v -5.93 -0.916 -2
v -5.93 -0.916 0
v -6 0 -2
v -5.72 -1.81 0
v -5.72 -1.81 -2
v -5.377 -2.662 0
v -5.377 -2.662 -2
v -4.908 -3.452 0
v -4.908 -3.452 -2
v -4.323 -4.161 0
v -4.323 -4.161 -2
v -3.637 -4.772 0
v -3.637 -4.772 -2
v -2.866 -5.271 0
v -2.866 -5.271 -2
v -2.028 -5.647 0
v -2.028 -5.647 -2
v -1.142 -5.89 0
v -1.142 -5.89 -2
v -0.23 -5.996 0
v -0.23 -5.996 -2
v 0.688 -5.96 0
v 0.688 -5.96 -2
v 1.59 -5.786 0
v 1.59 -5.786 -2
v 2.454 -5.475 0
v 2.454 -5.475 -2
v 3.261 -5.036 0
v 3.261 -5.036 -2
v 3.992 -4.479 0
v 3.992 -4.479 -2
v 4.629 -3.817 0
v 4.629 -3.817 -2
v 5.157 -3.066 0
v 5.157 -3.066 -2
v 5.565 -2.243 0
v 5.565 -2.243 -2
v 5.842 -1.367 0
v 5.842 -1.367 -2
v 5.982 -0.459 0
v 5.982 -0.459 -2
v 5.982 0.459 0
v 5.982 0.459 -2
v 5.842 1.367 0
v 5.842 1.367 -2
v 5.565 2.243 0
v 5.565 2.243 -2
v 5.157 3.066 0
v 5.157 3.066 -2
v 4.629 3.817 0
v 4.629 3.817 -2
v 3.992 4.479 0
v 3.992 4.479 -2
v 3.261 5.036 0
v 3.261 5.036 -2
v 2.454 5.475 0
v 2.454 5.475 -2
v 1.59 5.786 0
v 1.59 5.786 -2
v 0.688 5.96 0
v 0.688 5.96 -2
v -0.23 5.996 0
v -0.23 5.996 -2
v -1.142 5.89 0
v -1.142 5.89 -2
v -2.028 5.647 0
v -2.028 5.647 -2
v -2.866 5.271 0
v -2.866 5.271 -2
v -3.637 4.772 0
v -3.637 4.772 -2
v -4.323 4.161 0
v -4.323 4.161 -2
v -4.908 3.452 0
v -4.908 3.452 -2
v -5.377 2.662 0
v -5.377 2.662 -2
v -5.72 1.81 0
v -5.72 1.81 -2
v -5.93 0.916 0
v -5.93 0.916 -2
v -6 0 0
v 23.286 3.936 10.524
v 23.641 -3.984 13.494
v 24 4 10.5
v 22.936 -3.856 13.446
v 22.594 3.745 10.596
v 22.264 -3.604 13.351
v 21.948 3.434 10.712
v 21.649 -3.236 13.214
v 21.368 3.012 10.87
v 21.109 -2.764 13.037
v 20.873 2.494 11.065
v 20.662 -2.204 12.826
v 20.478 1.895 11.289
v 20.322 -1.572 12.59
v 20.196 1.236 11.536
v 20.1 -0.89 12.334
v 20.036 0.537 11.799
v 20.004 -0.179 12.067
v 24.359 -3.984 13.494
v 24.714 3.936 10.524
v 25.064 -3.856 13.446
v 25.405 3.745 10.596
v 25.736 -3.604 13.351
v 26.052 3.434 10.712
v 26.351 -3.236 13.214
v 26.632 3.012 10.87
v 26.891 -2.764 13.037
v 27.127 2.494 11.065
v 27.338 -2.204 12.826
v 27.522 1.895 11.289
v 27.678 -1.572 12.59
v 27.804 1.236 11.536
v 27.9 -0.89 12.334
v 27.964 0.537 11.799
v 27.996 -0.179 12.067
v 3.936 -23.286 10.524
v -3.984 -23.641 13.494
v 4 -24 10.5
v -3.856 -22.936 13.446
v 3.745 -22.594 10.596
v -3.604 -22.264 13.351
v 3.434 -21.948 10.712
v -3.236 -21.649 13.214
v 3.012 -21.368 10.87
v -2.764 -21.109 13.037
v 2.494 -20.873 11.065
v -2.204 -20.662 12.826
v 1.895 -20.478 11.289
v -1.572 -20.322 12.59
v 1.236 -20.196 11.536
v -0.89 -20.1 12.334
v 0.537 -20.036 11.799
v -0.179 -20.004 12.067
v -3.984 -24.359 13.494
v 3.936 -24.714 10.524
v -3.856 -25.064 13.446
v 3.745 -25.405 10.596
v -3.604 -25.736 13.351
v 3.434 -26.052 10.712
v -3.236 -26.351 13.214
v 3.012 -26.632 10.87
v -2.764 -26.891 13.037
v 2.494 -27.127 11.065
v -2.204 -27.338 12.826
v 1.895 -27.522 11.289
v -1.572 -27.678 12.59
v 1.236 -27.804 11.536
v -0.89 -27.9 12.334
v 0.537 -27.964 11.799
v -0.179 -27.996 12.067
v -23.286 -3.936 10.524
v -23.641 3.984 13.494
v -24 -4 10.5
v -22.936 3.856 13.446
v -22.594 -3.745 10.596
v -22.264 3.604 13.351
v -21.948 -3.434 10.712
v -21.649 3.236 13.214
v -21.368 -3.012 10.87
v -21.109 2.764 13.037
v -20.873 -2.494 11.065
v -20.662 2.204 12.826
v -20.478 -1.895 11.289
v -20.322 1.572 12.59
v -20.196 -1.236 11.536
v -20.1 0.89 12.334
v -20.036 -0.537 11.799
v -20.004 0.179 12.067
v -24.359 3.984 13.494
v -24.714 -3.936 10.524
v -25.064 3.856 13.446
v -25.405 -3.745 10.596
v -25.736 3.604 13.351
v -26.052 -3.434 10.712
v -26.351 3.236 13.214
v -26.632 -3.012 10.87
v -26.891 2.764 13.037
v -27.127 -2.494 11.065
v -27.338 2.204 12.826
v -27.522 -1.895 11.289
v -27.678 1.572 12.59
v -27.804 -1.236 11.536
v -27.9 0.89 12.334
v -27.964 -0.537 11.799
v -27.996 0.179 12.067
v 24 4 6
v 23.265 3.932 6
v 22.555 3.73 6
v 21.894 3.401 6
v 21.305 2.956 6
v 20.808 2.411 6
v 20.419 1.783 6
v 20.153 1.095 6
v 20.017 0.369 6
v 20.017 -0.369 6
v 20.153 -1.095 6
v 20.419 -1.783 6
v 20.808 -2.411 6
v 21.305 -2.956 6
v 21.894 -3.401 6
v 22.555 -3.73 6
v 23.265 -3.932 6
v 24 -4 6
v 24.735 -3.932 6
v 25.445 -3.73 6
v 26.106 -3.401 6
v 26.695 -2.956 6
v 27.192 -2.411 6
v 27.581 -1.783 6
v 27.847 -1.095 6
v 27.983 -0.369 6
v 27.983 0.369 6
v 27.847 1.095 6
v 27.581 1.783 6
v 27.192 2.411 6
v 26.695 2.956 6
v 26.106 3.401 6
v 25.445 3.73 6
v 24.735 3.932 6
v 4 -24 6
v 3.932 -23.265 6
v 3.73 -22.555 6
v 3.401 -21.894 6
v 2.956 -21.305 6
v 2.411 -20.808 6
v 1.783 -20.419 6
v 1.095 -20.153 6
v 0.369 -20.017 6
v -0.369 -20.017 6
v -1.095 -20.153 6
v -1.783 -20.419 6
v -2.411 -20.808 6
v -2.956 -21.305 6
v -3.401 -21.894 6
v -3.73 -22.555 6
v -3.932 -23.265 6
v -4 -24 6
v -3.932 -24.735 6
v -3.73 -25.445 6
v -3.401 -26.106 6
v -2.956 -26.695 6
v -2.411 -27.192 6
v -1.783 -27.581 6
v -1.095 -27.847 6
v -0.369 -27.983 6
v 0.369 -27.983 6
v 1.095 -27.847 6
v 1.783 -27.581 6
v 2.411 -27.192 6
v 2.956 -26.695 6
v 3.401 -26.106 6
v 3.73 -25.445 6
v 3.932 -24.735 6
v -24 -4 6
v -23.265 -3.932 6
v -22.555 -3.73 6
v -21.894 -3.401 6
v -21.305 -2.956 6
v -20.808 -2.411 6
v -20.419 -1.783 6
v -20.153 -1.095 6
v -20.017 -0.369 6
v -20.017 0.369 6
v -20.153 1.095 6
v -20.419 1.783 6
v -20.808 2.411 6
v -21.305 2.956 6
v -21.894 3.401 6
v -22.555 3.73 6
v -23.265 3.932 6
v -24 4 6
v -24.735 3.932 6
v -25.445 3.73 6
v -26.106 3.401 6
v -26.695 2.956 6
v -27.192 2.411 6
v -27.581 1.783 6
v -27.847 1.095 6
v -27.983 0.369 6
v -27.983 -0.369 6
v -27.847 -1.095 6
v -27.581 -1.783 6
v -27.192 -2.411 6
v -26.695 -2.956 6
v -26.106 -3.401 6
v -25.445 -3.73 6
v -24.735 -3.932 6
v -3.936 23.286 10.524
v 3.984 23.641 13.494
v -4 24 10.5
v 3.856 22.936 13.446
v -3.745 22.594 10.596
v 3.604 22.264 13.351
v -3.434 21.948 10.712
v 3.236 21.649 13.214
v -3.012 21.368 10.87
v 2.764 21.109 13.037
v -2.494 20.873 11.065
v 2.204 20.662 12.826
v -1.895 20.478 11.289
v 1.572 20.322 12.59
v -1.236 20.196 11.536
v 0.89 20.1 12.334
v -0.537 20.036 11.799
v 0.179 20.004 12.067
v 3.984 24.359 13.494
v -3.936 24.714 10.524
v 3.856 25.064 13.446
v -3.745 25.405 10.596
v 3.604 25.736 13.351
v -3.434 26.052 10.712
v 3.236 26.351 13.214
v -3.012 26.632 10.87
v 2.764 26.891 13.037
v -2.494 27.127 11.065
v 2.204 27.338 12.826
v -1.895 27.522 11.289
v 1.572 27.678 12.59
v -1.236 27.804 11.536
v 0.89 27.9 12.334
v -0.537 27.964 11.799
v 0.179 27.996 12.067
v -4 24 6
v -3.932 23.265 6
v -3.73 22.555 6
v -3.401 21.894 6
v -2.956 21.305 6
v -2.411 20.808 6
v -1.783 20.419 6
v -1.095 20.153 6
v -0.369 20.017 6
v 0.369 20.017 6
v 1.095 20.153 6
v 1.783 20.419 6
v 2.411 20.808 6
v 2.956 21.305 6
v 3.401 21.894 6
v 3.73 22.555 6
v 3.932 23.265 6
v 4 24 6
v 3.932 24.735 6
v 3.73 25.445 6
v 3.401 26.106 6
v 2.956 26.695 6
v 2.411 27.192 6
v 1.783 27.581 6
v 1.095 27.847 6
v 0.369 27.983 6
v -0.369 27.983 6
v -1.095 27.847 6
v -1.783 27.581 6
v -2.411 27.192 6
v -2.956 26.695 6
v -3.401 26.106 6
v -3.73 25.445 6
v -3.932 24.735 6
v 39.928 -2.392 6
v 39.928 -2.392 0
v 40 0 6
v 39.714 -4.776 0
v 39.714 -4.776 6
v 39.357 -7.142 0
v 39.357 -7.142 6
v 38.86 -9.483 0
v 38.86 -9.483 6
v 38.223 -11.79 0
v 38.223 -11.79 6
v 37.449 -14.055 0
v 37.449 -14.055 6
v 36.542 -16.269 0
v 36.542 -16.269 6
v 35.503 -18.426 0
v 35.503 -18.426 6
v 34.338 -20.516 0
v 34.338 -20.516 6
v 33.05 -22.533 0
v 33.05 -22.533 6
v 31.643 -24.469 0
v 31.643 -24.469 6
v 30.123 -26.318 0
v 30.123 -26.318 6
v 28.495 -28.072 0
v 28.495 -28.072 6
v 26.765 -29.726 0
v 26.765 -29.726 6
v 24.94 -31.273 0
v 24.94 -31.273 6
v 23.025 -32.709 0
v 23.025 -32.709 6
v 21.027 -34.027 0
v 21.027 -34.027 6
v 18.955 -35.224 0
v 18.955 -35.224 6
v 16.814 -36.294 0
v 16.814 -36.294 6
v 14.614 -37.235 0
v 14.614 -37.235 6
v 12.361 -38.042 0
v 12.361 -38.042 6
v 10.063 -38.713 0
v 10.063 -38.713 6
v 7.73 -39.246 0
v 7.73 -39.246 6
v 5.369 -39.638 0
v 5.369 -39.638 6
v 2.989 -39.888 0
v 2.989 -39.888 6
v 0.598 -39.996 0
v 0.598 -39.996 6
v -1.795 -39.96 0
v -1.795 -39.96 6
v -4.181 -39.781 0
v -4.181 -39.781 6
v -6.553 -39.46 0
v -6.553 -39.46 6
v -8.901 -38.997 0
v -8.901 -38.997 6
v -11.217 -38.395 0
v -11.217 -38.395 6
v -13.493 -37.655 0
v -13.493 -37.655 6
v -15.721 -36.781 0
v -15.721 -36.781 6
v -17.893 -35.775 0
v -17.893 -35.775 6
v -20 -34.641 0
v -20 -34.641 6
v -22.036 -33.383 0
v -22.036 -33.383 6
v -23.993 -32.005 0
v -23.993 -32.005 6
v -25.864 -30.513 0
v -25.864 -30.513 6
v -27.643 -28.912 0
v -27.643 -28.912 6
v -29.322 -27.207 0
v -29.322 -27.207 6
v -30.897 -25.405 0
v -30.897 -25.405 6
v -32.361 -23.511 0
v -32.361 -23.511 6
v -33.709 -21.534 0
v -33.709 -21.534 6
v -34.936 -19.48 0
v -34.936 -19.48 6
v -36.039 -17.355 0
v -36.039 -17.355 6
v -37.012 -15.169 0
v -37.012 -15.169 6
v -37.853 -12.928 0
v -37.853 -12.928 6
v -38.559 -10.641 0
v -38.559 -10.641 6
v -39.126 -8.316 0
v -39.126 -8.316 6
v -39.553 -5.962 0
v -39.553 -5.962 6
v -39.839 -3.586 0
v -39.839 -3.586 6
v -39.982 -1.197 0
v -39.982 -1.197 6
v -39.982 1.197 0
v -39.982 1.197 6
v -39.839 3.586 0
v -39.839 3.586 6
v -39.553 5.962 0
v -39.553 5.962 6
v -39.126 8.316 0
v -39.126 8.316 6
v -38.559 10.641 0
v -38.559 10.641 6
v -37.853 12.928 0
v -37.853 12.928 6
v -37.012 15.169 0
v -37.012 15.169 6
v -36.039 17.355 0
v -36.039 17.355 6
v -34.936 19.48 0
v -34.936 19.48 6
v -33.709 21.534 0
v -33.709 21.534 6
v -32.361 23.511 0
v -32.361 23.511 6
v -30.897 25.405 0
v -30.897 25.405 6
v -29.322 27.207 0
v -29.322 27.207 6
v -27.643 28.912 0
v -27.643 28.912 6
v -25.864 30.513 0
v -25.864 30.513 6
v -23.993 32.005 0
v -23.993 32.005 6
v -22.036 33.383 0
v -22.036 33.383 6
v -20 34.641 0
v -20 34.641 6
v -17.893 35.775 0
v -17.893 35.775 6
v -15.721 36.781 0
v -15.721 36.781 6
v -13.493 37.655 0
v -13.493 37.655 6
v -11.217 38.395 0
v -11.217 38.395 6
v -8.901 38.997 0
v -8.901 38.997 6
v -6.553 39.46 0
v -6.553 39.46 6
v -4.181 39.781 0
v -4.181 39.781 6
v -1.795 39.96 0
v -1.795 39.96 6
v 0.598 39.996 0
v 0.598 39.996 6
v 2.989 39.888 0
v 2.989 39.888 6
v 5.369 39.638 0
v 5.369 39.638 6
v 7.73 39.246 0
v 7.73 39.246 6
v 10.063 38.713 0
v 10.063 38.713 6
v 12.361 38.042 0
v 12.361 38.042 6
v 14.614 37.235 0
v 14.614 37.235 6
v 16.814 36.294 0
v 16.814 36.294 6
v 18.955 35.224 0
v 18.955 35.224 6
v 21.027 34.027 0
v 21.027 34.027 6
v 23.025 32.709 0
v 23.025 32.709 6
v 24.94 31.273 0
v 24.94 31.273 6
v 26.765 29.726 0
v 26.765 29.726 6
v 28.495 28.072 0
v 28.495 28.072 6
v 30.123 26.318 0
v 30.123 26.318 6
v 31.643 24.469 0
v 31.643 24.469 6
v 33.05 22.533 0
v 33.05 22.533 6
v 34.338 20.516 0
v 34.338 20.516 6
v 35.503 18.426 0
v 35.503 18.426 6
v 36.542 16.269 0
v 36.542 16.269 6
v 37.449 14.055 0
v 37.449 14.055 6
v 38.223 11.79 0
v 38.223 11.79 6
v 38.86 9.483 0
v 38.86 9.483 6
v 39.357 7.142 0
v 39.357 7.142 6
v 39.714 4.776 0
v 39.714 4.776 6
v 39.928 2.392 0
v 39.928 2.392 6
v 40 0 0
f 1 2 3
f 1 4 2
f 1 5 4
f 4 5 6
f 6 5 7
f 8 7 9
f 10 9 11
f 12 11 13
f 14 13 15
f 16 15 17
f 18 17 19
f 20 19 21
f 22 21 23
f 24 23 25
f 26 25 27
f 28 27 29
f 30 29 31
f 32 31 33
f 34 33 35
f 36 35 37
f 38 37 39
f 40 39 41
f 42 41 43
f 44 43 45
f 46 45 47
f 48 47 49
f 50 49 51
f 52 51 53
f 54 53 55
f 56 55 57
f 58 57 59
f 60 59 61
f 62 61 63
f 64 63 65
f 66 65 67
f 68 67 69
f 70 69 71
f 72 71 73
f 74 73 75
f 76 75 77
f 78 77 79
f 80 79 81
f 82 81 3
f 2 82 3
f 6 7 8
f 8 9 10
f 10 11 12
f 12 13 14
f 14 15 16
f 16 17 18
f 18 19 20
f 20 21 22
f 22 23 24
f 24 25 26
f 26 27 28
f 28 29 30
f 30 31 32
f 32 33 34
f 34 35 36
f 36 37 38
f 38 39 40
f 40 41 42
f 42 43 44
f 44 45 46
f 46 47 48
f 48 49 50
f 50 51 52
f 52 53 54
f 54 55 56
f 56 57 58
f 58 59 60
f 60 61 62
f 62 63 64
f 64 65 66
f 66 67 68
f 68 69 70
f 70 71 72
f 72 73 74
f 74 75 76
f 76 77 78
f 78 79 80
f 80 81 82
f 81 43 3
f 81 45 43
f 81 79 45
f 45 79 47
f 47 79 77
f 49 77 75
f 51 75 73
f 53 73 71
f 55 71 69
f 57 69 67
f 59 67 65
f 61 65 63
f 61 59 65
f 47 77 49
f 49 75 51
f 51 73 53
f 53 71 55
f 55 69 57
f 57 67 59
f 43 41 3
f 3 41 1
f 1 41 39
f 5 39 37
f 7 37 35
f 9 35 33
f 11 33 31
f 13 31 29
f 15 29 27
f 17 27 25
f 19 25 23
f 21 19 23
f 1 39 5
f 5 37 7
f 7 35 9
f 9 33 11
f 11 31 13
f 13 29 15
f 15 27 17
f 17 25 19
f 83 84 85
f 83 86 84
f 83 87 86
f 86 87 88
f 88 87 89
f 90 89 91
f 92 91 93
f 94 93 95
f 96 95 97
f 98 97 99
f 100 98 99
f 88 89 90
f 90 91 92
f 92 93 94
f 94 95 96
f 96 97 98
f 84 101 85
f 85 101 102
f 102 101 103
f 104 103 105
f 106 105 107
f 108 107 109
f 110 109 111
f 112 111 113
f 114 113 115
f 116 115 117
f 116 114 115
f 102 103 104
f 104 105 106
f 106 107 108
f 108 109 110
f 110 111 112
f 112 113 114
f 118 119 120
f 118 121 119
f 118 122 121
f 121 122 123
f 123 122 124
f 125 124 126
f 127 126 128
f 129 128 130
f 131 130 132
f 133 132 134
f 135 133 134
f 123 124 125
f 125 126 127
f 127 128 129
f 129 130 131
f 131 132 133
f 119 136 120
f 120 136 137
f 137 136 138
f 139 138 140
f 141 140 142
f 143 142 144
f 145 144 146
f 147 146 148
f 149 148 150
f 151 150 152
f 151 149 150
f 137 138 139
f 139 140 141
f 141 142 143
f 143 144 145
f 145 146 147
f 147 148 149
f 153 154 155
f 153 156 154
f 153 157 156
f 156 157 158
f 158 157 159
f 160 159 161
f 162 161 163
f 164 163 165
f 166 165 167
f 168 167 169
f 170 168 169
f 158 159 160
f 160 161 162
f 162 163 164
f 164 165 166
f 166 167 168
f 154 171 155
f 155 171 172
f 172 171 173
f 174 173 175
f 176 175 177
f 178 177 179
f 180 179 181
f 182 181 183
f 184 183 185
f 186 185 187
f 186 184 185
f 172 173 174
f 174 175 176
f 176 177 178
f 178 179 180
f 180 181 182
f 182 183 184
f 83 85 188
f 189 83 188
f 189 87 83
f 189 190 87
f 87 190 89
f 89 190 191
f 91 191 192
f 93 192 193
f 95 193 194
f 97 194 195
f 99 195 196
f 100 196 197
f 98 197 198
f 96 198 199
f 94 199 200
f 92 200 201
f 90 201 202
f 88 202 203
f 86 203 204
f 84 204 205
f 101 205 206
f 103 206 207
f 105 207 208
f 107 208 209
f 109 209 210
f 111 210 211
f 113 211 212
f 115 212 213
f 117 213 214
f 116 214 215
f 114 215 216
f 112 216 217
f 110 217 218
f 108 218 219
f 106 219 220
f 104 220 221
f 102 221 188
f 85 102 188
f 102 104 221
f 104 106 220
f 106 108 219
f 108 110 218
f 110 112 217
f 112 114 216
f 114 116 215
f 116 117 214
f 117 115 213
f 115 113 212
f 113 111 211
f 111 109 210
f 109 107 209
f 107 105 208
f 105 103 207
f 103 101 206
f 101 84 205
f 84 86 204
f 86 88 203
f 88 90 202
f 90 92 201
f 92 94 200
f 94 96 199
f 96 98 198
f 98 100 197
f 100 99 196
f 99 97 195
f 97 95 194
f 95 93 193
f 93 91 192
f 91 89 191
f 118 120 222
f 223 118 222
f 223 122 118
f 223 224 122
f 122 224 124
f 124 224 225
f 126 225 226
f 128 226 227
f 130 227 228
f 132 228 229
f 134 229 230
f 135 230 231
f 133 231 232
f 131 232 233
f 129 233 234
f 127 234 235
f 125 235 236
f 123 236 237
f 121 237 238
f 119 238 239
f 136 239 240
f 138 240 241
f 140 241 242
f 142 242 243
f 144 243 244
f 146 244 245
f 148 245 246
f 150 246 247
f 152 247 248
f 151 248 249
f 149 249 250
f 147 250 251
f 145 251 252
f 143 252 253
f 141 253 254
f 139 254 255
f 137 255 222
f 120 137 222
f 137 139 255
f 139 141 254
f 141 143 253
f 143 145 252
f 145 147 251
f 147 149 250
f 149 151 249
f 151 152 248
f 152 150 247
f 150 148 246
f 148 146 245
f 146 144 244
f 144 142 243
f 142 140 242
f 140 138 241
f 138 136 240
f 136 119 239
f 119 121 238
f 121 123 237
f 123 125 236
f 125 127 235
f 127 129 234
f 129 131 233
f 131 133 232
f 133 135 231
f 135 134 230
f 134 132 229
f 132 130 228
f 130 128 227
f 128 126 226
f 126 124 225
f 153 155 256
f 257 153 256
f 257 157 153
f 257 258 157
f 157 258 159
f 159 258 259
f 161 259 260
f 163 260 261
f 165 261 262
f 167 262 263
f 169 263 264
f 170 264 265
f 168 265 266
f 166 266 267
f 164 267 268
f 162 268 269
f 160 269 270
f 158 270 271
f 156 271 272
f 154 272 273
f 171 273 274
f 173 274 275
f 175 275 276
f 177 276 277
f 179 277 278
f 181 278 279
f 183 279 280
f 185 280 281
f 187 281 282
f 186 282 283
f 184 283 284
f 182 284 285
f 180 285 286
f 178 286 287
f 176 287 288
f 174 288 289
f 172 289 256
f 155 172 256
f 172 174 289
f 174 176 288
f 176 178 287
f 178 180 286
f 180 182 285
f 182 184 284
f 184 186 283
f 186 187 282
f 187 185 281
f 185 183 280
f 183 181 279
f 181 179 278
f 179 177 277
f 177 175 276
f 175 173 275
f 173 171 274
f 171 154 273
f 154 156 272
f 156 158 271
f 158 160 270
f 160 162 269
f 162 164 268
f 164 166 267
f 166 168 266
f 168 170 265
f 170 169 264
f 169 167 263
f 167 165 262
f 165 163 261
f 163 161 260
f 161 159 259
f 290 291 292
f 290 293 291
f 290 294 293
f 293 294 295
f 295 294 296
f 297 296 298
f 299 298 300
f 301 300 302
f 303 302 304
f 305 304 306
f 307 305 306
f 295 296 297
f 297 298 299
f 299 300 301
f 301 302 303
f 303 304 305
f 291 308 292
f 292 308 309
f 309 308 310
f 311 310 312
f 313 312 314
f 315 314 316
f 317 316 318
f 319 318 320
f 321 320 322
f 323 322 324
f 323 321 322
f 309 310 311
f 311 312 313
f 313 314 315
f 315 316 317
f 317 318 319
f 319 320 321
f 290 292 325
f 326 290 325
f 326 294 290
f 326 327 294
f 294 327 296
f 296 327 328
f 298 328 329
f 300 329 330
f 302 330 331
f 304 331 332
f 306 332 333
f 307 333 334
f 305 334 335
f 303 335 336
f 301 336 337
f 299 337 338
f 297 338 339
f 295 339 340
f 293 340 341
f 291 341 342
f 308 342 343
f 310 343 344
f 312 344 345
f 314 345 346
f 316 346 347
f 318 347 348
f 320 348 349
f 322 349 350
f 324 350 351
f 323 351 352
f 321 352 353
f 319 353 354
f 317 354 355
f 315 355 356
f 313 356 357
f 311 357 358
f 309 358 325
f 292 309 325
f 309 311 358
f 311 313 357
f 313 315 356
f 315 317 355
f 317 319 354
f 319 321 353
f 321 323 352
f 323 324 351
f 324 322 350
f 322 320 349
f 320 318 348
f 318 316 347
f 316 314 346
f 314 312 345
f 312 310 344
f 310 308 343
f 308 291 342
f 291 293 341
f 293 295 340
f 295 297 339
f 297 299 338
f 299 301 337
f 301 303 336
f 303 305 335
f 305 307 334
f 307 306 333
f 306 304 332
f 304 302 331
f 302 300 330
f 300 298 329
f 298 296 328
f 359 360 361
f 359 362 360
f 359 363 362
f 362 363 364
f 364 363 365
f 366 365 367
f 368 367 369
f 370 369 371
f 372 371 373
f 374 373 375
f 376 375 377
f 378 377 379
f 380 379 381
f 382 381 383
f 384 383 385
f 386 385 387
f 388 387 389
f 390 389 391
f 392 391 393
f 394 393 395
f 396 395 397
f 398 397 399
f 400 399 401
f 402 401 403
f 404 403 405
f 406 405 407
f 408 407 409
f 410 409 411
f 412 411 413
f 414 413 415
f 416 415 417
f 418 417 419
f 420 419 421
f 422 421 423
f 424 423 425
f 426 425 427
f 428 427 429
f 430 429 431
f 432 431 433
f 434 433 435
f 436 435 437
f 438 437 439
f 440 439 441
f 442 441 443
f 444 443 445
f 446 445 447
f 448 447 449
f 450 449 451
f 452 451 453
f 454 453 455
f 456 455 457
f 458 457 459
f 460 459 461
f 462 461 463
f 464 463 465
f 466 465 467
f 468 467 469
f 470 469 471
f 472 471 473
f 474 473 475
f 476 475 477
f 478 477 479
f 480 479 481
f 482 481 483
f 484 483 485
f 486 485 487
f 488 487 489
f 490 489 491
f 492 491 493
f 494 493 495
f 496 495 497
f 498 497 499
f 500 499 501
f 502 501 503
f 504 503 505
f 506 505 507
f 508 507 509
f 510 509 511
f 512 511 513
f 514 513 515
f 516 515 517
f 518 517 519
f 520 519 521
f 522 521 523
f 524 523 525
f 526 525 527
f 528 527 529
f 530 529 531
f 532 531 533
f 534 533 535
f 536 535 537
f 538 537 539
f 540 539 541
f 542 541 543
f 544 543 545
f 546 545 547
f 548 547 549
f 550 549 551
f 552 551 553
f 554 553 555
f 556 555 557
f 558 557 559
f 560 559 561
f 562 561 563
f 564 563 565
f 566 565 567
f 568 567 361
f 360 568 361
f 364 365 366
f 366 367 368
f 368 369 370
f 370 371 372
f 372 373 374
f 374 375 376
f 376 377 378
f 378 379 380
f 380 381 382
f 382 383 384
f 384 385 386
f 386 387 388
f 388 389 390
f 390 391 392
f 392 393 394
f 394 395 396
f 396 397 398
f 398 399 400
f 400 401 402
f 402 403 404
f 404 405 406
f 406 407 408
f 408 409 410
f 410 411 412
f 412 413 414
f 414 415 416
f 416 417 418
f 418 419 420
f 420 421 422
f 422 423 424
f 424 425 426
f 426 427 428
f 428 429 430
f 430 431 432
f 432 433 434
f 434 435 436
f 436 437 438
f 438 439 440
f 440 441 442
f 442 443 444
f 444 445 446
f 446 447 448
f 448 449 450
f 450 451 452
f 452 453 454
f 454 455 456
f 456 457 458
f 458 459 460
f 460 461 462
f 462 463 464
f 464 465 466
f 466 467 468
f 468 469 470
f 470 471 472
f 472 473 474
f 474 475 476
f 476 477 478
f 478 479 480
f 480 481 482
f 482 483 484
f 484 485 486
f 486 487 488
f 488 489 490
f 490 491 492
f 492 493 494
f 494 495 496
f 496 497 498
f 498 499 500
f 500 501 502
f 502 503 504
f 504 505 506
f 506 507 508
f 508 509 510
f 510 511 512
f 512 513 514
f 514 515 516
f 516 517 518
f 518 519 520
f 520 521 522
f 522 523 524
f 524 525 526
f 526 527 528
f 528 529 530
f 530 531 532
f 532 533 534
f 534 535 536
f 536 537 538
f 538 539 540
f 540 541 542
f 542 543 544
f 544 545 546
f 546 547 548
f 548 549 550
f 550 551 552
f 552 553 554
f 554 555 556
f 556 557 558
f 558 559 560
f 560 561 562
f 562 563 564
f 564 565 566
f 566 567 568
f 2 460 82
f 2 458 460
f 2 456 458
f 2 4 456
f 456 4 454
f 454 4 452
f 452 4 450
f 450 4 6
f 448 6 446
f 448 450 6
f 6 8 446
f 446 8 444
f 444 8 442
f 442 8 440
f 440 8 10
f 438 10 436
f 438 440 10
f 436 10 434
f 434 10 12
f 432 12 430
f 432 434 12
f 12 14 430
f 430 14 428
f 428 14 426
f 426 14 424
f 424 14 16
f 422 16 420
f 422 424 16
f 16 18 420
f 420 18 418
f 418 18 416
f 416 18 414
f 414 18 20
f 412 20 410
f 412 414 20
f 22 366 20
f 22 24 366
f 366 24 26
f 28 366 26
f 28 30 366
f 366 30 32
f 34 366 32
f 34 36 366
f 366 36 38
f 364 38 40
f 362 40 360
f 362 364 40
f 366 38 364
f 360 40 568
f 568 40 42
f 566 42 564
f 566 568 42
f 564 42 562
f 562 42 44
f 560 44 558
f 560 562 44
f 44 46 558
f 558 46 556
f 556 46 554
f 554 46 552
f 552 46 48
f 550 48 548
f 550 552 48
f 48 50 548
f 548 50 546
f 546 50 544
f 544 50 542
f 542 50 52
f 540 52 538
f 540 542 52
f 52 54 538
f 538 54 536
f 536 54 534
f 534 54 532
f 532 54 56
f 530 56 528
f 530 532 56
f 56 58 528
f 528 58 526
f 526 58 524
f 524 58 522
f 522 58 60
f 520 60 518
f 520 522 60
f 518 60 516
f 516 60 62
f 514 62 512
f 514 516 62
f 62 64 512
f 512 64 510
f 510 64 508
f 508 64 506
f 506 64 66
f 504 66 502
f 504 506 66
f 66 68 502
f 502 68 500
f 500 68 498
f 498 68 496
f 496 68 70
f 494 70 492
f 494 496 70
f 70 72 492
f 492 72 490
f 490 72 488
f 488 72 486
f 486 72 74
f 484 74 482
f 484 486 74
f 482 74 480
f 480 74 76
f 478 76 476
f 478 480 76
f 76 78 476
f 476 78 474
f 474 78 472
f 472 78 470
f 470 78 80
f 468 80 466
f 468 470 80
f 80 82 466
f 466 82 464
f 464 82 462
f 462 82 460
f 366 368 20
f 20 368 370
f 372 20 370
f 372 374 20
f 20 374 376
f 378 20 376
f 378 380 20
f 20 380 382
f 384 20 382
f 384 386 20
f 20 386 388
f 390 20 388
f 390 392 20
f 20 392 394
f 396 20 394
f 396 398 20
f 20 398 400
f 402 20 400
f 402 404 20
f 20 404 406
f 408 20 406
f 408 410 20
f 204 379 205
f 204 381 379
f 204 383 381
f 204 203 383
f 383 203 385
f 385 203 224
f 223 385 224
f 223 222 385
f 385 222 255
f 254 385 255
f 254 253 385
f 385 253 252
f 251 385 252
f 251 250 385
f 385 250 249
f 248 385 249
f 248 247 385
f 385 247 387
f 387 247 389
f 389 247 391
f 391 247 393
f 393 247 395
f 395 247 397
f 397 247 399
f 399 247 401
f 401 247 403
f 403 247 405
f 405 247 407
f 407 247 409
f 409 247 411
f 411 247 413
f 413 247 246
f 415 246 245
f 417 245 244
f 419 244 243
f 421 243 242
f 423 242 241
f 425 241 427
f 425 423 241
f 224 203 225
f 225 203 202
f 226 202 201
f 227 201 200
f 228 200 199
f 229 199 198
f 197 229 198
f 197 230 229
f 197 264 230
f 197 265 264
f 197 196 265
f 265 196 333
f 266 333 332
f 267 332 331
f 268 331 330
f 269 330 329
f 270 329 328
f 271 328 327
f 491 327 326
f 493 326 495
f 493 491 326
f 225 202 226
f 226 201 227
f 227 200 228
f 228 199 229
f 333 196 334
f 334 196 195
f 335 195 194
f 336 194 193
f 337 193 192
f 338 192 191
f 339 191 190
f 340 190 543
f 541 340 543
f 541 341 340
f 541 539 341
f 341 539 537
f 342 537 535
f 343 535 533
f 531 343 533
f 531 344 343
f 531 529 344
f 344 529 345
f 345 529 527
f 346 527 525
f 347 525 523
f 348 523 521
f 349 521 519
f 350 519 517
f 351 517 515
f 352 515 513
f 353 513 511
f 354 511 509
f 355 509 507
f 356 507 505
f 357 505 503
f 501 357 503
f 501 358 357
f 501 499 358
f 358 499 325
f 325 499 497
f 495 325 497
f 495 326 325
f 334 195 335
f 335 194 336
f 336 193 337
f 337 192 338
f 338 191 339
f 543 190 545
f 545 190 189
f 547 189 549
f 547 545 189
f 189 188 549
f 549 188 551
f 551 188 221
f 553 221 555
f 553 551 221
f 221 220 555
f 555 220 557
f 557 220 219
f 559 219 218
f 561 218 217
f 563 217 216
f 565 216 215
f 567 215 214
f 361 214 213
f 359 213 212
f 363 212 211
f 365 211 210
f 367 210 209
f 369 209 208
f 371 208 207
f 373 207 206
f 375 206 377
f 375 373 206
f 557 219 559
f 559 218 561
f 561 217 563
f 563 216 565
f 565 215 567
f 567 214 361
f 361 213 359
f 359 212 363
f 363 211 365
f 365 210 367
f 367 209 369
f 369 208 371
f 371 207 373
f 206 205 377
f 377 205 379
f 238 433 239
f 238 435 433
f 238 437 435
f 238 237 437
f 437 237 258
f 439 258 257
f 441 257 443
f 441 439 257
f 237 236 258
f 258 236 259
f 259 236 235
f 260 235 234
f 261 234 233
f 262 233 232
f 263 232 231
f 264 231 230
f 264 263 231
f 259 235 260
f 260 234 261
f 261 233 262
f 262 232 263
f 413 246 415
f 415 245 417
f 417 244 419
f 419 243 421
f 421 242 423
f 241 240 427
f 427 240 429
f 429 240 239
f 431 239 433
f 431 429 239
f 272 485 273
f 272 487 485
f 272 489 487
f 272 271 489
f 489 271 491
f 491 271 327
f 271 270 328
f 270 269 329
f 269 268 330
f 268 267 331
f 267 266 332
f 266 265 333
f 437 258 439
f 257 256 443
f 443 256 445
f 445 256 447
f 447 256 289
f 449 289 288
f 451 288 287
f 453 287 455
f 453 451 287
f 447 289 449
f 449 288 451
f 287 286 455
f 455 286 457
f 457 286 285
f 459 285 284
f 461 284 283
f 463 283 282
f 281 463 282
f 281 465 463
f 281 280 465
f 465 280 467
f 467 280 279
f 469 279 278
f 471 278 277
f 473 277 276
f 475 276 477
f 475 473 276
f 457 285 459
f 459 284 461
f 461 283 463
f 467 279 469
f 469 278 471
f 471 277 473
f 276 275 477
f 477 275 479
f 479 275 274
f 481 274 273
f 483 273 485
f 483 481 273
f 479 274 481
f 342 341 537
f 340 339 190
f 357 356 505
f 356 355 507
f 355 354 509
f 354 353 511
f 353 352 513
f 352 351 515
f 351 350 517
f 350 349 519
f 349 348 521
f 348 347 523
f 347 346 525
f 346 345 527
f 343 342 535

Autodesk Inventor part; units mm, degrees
ref_plane "YZ Plane" through (0, 0, 0) normal (1, 0, 0) x (0, 1, 0)
ref_plane "XZ Plane" through (0, 0, 0) normal (0, 1, 0) x (-1, 0, 0)
ref_plane "XY Plane" through (0, 0, 0) normal (0, 0, 1) x (1, 0, 0)
sketch "Sketch1" plane through (0, 0, 0) normal (0, 0, 1) x (1, 0, 0)
  circle A0 centre (0, 0) radius 40
  dimension "d0" = 80
extrude "Extrusion1" add sketch "Sketch1" along normal blind 6
sketch "Sketch2" plane through (0, 0, 6) normal (0, 0, 1) x (1, 0, 0)
  circle A0 centre (0, 24) radius 4
  point P0 (0, 0)
  dimension "d3" = 8
  dimension "d4" = 24
extrude "Extrusion2" add sketch "Sketch2" along normal blind 7.5
sketch "Sketch3" plane through (0, 0, 6) normal (0, 0, 1) x (1, 0, 0)
  line L0 (0, 0) -> (0, 40) construction
  circle A0 centre (0, 0) radius 40 construction
ref_plane "Work Plane1" through (0, 40, 6) normal (0, 1, 0) x (-1, 0, 0)
sketch "Sketch4" plane through (0, 40, 6) normal (0, 1, 0) x (-1, 0, 0)
  line L0 (-4.5029, 7.5) -> (4.4959, 7.5)
  line L1 (4, 7.5) -> (-4, 7.5) projected
  line L2 (-4, 0) -> (-4, 7.5) projected
  line L3 (4, 7.5) -> (4, 4.5)
  line L4 (4, 4.5) -> (-4, 7.5)
  point P0 (0, -6)
  dimension "d12" = 3
extrude "Extrusion3" cut sketch "Sketch4" against normal blind 25
pattern_circular "Circular Pattern1" count 4 over 360 about axis through (0, 0, 0) along (0, 0, 1) of "Extrusion2", "Extrusion3"
sketch "Sketch5" plane through (0, 0, 0) normal (0, 0, -1) x (-1, 0, 0)
  circle A0 centre (0, 0) radius 6
  dimension "d13" = 12
extrude "Extrusion4" add sketch "Sketch5" along normal blind 2
properties part number "innerbaycon4"
